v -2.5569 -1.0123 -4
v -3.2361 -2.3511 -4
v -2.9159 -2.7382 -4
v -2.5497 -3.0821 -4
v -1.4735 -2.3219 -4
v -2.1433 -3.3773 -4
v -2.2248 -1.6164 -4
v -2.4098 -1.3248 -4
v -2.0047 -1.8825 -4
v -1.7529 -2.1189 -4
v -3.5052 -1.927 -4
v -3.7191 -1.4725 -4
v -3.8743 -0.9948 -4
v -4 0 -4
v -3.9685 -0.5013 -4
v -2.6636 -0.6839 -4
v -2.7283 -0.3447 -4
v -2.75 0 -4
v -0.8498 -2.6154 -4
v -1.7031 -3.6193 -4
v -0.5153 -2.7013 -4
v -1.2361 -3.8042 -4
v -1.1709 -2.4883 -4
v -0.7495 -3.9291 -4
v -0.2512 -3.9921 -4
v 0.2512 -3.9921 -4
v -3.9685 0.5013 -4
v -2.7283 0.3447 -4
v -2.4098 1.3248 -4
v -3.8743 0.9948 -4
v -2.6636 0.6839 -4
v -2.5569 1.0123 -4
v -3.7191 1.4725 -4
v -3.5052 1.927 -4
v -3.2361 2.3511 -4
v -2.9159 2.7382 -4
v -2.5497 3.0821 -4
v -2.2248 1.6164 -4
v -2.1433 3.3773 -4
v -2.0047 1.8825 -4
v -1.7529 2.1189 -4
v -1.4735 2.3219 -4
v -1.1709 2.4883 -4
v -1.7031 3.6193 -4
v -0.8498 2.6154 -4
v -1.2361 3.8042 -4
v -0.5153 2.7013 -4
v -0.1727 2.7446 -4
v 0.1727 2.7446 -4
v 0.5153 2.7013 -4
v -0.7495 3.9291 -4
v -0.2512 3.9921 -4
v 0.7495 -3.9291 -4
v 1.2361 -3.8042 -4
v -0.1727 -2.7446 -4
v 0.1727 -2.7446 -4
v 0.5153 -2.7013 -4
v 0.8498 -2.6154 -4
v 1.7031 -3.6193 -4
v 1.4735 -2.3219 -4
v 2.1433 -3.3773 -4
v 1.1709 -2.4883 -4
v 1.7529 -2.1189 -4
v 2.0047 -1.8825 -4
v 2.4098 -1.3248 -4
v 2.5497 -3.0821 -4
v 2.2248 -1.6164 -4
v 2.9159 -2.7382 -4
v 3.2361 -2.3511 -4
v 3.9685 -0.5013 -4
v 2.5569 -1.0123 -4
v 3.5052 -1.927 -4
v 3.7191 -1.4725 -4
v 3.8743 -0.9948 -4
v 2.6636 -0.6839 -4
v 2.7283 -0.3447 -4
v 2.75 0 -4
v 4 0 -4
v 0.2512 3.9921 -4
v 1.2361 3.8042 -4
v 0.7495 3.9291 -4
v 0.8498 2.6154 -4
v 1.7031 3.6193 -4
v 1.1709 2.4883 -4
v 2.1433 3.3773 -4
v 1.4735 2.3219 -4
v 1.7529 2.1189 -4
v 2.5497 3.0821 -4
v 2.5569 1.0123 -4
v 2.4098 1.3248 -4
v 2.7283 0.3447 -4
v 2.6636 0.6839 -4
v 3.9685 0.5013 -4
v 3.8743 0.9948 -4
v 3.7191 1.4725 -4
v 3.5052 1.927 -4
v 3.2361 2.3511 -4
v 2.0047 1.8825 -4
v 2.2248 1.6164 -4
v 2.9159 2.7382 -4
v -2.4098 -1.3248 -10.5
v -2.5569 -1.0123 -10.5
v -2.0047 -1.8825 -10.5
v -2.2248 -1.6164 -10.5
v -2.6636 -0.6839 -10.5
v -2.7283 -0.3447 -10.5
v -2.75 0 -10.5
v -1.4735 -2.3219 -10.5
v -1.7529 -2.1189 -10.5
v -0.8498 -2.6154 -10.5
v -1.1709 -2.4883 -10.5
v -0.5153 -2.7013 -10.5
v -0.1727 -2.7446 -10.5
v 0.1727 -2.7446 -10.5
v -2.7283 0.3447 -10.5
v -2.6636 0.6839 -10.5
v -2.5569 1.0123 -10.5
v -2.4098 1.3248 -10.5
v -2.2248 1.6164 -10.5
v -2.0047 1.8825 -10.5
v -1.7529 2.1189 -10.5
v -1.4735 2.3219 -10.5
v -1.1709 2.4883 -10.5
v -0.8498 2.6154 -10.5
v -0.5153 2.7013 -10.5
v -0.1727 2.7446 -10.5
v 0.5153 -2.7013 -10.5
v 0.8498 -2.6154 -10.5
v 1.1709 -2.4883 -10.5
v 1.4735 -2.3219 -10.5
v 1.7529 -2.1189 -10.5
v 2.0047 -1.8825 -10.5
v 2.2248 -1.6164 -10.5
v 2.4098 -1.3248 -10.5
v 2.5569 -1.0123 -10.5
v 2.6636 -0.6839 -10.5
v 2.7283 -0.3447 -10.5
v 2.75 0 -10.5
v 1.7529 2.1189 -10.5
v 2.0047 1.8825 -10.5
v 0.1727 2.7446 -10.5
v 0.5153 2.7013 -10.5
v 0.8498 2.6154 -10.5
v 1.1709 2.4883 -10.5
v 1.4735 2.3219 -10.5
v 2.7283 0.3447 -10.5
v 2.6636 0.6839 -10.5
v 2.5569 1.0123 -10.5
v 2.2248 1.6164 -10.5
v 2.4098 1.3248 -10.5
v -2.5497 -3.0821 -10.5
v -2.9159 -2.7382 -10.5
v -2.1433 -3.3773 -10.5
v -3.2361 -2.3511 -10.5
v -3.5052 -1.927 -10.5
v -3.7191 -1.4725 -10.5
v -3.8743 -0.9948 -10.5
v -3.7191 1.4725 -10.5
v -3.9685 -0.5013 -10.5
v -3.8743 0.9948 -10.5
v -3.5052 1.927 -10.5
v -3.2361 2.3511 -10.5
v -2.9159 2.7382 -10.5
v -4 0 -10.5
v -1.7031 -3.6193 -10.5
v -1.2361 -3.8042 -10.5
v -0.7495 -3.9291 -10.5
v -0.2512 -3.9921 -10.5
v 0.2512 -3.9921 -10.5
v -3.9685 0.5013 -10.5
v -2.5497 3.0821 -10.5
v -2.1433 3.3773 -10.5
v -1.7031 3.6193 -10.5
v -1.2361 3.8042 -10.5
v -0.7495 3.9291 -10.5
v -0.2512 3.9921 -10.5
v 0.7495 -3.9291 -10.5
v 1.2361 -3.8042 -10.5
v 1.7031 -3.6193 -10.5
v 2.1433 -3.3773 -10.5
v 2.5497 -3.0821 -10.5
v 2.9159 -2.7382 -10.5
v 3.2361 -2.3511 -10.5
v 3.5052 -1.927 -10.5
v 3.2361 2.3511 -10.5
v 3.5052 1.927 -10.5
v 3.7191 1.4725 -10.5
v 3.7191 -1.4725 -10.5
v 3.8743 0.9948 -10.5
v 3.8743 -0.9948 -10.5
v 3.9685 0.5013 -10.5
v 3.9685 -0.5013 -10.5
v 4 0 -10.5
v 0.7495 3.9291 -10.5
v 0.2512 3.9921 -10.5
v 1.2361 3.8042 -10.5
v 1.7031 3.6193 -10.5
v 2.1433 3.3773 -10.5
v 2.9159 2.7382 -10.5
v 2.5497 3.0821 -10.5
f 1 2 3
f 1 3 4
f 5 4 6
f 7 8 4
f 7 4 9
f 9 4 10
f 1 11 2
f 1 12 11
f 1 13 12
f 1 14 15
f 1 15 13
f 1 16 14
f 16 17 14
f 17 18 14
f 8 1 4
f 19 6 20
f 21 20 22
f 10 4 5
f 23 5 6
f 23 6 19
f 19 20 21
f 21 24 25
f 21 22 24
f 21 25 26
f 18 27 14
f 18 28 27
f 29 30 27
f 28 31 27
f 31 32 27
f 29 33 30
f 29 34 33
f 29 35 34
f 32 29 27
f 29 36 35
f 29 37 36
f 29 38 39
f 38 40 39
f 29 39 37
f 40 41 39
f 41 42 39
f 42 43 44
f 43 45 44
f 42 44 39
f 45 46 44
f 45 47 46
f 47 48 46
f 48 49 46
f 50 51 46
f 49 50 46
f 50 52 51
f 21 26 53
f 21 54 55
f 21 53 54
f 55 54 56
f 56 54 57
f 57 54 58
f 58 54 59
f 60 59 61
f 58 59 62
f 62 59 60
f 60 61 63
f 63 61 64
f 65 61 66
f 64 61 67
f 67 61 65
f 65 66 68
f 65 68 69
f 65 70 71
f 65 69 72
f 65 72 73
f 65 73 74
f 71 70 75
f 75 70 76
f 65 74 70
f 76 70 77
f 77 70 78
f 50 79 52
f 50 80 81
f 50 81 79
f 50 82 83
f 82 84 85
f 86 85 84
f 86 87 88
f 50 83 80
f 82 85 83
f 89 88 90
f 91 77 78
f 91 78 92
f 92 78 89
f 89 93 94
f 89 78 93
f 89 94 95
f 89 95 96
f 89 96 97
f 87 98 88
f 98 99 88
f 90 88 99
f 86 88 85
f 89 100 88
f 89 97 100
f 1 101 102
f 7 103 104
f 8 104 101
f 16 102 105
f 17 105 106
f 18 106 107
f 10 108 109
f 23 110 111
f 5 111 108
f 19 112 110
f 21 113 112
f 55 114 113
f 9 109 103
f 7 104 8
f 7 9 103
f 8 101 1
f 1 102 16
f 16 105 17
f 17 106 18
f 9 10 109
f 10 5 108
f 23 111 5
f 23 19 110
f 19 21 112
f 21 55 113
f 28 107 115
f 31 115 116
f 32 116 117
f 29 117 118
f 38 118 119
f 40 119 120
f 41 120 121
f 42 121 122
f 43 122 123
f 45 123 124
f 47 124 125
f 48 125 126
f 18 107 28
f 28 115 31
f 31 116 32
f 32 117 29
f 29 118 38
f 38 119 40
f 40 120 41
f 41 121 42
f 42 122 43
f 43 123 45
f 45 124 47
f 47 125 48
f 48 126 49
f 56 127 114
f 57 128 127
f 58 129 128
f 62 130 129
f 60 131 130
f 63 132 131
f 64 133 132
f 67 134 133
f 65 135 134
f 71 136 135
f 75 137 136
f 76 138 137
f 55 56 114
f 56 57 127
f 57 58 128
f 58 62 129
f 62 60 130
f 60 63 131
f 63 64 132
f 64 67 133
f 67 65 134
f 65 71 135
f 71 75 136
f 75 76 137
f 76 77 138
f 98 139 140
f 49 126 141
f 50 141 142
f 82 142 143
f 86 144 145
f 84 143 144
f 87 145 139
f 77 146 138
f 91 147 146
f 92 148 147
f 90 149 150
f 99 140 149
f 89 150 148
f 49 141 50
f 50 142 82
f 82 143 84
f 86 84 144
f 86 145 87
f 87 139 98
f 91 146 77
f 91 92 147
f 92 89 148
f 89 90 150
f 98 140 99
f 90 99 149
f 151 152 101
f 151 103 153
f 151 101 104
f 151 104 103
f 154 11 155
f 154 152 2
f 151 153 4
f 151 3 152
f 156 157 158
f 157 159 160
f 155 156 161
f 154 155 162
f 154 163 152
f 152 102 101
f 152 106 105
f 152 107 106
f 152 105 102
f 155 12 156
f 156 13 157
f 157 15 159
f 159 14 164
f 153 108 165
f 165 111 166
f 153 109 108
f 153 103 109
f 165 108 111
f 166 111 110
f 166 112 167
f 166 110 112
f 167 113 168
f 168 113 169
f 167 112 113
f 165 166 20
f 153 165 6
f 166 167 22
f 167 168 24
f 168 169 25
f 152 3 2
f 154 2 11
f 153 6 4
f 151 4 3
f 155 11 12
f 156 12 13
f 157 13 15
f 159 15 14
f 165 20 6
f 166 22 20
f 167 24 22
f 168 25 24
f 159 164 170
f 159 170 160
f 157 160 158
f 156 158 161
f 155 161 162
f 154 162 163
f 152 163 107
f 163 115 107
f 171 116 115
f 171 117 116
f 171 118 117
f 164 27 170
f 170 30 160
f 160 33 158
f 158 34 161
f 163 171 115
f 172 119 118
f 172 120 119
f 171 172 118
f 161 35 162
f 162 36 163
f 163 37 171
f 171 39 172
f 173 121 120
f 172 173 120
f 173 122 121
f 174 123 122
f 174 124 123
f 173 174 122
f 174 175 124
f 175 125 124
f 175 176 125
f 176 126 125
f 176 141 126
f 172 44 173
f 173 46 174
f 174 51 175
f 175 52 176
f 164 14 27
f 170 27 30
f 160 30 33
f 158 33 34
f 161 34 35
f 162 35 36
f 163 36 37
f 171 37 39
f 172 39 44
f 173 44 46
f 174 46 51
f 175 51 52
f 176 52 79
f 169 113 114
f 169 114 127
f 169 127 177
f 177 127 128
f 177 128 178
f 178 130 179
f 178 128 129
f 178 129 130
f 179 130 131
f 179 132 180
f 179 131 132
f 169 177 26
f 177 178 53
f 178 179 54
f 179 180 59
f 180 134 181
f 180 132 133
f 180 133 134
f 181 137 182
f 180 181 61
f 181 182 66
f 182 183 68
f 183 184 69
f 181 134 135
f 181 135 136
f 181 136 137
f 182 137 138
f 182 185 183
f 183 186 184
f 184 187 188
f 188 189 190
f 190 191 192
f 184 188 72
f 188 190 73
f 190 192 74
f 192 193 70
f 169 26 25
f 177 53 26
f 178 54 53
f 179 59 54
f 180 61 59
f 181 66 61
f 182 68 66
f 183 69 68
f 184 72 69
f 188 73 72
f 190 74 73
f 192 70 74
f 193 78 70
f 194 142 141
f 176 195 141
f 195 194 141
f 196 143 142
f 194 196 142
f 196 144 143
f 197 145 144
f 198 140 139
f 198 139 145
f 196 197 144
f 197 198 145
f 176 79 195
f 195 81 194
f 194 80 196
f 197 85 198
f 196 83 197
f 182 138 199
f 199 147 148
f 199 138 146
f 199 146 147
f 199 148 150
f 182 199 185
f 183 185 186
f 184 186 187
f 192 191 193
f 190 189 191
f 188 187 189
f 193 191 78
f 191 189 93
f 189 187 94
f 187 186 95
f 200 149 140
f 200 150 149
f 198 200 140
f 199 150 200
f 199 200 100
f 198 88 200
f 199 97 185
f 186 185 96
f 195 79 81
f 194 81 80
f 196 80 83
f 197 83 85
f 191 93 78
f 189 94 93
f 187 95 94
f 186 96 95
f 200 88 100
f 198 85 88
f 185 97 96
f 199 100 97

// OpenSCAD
$fn = 50;

difference() {
	union() {
		translate(v = [0, 0, -10.5]) {
			cylinder(h = 13.5, r = 4.0);
		}
	}
	union() {
		translate(v = [0, 0, 0]) {
			rotate(a = [0, 0, 0]) {
				difference() {
					union() {
						translate(v = [0, 0, -4]) {
							linear_extrude(height = 4) {
								polygon(points = [[4.8468, 0.0], [2.4234000000000004, 4.197451927062417], [-2.423399999999999, 4.197451927062417], [-4.8468, 5.935618106107392e-16], [-2.423400000000002, -4.197451927062416], [2.423399999999997, -4.197451927062419]]);
							}
						}
					}
					union();
				}
			}
		}
		#cylinder(h = 3, r = 6.25);
		#translate(v = [0, 0, -100.0]) {
			cylinder(h = 200, r = 2.75);
		}
	}
}
